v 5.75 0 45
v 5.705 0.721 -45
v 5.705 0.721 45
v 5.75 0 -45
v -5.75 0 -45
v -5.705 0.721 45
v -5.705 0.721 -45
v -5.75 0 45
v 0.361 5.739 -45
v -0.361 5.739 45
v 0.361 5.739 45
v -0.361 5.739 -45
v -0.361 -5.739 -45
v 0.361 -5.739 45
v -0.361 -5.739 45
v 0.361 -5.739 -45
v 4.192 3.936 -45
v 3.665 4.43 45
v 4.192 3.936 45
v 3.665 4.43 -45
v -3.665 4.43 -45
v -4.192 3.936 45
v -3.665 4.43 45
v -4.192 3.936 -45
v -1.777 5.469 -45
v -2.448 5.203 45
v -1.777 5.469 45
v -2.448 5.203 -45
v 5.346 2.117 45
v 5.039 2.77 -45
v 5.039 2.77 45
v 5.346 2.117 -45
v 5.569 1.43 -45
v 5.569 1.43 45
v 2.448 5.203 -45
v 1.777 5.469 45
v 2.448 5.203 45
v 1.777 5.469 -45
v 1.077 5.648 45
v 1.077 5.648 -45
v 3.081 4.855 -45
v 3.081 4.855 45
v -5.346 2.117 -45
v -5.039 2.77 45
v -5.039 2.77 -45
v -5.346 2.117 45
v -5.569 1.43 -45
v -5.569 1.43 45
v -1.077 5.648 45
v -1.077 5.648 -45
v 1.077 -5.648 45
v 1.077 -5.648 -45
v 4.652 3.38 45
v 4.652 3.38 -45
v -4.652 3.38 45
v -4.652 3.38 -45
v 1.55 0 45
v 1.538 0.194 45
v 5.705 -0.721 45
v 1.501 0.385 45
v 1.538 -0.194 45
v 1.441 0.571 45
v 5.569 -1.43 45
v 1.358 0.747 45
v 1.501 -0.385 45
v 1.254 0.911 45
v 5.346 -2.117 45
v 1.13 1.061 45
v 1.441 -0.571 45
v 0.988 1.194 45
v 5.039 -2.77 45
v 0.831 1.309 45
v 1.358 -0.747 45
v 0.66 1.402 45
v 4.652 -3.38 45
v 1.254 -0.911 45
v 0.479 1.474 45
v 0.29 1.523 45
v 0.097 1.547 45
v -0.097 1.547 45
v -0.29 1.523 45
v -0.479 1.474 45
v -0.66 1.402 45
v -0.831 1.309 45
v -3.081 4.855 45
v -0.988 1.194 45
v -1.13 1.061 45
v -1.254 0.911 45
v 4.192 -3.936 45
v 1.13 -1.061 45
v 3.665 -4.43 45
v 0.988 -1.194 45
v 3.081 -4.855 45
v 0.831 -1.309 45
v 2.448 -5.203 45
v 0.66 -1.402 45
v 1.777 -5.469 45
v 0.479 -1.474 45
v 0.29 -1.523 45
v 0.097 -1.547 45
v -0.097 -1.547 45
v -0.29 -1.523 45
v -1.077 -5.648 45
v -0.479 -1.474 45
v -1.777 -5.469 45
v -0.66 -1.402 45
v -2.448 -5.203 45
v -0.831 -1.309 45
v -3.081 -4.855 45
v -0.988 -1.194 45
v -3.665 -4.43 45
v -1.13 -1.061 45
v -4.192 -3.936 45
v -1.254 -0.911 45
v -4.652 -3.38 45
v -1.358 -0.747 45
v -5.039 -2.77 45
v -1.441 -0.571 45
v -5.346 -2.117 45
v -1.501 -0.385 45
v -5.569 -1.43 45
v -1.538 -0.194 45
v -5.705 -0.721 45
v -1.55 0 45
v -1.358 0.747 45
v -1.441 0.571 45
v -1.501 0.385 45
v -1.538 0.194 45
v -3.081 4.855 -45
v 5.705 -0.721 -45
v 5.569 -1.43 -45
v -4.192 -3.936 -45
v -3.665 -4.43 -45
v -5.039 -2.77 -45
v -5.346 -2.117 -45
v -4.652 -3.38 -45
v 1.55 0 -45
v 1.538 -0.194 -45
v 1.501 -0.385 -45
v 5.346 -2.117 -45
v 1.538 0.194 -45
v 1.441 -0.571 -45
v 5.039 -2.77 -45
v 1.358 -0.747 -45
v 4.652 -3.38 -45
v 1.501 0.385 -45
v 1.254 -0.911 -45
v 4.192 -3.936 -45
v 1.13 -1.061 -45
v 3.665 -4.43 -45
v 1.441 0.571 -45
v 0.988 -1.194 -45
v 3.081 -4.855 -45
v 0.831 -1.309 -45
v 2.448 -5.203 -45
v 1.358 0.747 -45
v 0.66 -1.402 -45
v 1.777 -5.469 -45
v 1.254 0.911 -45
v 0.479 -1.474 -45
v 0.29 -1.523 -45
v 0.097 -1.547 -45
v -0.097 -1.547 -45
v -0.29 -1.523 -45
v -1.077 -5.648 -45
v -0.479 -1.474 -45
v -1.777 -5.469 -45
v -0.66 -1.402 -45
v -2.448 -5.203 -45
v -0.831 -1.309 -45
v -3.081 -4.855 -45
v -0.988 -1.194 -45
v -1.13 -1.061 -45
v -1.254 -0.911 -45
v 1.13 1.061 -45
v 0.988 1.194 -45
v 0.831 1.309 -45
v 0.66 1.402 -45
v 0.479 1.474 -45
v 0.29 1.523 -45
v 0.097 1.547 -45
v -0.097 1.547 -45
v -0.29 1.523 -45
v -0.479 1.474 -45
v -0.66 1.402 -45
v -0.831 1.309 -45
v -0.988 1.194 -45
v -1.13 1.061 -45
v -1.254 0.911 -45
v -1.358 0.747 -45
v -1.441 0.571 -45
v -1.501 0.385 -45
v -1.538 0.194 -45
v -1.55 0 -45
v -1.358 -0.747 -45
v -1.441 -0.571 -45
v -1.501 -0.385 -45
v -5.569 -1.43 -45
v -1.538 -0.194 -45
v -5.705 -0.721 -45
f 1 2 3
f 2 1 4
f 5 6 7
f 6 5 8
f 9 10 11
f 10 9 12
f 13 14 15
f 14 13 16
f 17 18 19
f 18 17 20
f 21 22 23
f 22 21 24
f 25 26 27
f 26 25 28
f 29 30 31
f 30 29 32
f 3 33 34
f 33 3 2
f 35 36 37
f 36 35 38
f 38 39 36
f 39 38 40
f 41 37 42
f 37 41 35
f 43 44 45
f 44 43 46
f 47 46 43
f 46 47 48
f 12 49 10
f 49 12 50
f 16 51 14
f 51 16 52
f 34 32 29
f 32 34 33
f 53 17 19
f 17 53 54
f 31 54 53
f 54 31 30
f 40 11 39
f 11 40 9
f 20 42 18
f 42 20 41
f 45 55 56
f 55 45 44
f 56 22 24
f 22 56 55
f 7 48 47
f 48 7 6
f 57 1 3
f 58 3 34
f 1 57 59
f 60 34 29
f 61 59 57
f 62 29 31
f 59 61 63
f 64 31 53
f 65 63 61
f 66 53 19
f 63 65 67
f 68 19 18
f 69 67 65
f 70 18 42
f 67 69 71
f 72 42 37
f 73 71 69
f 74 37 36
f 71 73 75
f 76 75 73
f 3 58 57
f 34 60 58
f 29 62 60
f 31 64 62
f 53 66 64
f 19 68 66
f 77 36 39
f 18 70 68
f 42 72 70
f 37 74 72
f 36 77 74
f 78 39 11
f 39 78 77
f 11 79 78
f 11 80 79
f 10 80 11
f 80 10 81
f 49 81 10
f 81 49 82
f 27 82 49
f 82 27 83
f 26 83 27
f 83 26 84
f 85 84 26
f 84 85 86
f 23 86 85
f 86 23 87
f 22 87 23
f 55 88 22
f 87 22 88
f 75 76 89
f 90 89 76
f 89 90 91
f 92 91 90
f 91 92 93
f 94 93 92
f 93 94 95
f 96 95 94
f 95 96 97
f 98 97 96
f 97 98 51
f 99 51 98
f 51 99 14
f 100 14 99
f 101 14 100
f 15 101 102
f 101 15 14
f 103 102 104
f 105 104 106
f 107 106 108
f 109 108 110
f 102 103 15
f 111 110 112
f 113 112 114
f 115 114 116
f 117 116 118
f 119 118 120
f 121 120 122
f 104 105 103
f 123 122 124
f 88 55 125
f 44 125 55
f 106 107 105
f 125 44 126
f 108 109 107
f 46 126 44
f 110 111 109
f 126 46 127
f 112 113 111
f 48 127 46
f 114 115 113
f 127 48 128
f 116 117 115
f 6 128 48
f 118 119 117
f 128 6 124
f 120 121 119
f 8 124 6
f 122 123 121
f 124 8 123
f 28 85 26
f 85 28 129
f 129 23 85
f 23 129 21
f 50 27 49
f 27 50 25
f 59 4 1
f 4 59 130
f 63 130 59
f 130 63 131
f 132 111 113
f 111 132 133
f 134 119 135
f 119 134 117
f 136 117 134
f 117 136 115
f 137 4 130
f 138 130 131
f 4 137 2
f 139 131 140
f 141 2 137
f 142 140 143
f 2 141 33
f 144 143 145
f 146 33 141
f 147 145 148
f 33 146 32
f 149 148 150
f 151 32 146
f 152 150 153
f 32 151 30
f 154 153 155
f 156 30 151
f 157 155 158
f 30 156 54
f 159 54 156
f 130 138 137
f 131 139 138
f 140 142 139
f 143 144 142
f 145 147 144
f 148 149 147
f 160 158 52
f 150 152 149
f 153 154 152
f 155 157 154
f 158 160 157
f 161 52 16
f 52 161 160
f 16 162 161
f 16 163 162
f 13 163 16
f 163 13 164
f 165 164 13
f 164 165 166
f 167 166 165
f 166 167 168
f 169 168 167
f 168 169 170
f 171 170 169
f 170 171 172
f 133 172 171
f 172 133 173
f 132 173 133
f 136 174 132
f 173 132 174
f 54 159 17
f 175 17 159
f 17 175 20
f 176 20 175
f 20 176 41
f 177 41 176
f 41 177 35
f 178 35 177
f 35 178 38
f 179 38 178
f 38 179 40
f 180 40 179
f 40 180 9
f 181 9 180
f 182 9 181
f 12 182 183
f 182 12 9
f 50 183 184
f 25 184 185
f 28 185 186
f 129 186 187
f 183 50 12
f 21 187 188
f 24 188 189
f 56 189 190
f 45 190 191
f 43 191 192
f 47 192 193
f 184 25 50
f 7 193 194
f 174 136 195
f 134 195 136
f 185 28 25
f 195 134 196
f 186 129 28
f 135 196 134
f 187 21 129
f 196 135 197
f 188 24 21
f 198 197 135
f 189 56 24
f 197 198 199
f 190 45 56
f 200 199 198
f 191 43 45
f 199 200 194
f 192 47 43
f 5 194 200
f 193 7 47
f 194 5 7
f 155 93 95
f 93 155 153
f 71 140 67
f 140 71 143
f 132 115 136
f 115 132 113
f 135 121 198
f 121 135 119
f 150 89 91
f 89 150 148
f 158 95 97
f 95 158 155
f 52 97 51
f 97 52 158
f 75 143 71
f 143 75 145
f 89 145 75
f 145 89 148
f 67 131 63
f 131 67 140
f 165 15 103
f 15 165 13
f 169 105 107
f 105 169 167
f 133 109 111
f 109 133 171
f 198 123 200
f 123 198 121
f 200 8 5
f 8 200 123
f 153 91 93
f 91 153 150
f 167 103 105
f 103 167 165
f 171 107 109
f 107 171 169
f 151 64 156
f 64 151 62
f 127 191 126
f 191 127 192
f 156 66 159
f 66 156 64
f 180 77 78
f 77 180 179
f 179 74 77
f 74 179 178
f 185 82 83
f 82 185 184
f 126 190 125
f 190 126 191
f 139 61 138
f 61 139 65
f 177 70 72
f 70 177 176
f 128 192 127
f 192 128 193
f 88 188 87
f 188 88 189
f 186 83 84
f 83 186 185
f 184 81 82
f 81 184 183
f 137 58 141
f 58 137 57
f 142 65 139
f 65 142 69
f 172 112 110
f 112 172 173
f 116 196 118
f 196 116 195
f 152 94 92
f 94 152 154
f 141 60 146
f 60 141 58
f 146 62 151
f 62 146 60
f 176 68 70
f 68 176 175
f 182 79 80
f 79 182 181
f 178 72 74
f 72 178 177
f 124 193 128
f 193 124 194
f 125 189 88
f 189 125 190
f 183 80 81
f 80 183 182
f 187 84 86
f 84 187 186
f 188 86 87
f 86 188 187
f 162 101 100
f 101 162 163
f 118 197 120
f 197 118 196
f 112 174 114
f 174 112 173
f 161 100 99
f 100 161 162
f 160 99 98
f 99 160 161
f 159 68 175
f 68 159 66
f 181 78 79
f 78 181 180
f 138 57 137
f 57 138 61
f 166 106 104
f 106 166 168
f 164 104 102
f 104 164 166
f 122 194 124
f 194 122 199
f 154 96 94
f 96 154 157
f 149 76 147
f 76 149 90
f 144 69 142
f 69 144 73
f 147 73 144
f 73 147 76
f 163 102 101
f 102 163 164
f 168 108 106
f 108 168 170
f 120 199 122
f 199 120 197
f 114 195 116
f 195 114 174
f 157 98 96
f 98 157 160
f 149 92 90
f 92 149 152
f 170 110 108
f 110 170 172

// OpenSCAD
$fn = 50;


difference() {
	union() {
		translate(v = [0, 0, -45.0000000000]) {
			cylinder(h = 90, r = 5.7500000000);
		}
	}
	union() {
		translate(v = [0, 0, -100.0000000000]) {
			cylinder(h = 200, r = 1.5500000000);
		}
	}
}
